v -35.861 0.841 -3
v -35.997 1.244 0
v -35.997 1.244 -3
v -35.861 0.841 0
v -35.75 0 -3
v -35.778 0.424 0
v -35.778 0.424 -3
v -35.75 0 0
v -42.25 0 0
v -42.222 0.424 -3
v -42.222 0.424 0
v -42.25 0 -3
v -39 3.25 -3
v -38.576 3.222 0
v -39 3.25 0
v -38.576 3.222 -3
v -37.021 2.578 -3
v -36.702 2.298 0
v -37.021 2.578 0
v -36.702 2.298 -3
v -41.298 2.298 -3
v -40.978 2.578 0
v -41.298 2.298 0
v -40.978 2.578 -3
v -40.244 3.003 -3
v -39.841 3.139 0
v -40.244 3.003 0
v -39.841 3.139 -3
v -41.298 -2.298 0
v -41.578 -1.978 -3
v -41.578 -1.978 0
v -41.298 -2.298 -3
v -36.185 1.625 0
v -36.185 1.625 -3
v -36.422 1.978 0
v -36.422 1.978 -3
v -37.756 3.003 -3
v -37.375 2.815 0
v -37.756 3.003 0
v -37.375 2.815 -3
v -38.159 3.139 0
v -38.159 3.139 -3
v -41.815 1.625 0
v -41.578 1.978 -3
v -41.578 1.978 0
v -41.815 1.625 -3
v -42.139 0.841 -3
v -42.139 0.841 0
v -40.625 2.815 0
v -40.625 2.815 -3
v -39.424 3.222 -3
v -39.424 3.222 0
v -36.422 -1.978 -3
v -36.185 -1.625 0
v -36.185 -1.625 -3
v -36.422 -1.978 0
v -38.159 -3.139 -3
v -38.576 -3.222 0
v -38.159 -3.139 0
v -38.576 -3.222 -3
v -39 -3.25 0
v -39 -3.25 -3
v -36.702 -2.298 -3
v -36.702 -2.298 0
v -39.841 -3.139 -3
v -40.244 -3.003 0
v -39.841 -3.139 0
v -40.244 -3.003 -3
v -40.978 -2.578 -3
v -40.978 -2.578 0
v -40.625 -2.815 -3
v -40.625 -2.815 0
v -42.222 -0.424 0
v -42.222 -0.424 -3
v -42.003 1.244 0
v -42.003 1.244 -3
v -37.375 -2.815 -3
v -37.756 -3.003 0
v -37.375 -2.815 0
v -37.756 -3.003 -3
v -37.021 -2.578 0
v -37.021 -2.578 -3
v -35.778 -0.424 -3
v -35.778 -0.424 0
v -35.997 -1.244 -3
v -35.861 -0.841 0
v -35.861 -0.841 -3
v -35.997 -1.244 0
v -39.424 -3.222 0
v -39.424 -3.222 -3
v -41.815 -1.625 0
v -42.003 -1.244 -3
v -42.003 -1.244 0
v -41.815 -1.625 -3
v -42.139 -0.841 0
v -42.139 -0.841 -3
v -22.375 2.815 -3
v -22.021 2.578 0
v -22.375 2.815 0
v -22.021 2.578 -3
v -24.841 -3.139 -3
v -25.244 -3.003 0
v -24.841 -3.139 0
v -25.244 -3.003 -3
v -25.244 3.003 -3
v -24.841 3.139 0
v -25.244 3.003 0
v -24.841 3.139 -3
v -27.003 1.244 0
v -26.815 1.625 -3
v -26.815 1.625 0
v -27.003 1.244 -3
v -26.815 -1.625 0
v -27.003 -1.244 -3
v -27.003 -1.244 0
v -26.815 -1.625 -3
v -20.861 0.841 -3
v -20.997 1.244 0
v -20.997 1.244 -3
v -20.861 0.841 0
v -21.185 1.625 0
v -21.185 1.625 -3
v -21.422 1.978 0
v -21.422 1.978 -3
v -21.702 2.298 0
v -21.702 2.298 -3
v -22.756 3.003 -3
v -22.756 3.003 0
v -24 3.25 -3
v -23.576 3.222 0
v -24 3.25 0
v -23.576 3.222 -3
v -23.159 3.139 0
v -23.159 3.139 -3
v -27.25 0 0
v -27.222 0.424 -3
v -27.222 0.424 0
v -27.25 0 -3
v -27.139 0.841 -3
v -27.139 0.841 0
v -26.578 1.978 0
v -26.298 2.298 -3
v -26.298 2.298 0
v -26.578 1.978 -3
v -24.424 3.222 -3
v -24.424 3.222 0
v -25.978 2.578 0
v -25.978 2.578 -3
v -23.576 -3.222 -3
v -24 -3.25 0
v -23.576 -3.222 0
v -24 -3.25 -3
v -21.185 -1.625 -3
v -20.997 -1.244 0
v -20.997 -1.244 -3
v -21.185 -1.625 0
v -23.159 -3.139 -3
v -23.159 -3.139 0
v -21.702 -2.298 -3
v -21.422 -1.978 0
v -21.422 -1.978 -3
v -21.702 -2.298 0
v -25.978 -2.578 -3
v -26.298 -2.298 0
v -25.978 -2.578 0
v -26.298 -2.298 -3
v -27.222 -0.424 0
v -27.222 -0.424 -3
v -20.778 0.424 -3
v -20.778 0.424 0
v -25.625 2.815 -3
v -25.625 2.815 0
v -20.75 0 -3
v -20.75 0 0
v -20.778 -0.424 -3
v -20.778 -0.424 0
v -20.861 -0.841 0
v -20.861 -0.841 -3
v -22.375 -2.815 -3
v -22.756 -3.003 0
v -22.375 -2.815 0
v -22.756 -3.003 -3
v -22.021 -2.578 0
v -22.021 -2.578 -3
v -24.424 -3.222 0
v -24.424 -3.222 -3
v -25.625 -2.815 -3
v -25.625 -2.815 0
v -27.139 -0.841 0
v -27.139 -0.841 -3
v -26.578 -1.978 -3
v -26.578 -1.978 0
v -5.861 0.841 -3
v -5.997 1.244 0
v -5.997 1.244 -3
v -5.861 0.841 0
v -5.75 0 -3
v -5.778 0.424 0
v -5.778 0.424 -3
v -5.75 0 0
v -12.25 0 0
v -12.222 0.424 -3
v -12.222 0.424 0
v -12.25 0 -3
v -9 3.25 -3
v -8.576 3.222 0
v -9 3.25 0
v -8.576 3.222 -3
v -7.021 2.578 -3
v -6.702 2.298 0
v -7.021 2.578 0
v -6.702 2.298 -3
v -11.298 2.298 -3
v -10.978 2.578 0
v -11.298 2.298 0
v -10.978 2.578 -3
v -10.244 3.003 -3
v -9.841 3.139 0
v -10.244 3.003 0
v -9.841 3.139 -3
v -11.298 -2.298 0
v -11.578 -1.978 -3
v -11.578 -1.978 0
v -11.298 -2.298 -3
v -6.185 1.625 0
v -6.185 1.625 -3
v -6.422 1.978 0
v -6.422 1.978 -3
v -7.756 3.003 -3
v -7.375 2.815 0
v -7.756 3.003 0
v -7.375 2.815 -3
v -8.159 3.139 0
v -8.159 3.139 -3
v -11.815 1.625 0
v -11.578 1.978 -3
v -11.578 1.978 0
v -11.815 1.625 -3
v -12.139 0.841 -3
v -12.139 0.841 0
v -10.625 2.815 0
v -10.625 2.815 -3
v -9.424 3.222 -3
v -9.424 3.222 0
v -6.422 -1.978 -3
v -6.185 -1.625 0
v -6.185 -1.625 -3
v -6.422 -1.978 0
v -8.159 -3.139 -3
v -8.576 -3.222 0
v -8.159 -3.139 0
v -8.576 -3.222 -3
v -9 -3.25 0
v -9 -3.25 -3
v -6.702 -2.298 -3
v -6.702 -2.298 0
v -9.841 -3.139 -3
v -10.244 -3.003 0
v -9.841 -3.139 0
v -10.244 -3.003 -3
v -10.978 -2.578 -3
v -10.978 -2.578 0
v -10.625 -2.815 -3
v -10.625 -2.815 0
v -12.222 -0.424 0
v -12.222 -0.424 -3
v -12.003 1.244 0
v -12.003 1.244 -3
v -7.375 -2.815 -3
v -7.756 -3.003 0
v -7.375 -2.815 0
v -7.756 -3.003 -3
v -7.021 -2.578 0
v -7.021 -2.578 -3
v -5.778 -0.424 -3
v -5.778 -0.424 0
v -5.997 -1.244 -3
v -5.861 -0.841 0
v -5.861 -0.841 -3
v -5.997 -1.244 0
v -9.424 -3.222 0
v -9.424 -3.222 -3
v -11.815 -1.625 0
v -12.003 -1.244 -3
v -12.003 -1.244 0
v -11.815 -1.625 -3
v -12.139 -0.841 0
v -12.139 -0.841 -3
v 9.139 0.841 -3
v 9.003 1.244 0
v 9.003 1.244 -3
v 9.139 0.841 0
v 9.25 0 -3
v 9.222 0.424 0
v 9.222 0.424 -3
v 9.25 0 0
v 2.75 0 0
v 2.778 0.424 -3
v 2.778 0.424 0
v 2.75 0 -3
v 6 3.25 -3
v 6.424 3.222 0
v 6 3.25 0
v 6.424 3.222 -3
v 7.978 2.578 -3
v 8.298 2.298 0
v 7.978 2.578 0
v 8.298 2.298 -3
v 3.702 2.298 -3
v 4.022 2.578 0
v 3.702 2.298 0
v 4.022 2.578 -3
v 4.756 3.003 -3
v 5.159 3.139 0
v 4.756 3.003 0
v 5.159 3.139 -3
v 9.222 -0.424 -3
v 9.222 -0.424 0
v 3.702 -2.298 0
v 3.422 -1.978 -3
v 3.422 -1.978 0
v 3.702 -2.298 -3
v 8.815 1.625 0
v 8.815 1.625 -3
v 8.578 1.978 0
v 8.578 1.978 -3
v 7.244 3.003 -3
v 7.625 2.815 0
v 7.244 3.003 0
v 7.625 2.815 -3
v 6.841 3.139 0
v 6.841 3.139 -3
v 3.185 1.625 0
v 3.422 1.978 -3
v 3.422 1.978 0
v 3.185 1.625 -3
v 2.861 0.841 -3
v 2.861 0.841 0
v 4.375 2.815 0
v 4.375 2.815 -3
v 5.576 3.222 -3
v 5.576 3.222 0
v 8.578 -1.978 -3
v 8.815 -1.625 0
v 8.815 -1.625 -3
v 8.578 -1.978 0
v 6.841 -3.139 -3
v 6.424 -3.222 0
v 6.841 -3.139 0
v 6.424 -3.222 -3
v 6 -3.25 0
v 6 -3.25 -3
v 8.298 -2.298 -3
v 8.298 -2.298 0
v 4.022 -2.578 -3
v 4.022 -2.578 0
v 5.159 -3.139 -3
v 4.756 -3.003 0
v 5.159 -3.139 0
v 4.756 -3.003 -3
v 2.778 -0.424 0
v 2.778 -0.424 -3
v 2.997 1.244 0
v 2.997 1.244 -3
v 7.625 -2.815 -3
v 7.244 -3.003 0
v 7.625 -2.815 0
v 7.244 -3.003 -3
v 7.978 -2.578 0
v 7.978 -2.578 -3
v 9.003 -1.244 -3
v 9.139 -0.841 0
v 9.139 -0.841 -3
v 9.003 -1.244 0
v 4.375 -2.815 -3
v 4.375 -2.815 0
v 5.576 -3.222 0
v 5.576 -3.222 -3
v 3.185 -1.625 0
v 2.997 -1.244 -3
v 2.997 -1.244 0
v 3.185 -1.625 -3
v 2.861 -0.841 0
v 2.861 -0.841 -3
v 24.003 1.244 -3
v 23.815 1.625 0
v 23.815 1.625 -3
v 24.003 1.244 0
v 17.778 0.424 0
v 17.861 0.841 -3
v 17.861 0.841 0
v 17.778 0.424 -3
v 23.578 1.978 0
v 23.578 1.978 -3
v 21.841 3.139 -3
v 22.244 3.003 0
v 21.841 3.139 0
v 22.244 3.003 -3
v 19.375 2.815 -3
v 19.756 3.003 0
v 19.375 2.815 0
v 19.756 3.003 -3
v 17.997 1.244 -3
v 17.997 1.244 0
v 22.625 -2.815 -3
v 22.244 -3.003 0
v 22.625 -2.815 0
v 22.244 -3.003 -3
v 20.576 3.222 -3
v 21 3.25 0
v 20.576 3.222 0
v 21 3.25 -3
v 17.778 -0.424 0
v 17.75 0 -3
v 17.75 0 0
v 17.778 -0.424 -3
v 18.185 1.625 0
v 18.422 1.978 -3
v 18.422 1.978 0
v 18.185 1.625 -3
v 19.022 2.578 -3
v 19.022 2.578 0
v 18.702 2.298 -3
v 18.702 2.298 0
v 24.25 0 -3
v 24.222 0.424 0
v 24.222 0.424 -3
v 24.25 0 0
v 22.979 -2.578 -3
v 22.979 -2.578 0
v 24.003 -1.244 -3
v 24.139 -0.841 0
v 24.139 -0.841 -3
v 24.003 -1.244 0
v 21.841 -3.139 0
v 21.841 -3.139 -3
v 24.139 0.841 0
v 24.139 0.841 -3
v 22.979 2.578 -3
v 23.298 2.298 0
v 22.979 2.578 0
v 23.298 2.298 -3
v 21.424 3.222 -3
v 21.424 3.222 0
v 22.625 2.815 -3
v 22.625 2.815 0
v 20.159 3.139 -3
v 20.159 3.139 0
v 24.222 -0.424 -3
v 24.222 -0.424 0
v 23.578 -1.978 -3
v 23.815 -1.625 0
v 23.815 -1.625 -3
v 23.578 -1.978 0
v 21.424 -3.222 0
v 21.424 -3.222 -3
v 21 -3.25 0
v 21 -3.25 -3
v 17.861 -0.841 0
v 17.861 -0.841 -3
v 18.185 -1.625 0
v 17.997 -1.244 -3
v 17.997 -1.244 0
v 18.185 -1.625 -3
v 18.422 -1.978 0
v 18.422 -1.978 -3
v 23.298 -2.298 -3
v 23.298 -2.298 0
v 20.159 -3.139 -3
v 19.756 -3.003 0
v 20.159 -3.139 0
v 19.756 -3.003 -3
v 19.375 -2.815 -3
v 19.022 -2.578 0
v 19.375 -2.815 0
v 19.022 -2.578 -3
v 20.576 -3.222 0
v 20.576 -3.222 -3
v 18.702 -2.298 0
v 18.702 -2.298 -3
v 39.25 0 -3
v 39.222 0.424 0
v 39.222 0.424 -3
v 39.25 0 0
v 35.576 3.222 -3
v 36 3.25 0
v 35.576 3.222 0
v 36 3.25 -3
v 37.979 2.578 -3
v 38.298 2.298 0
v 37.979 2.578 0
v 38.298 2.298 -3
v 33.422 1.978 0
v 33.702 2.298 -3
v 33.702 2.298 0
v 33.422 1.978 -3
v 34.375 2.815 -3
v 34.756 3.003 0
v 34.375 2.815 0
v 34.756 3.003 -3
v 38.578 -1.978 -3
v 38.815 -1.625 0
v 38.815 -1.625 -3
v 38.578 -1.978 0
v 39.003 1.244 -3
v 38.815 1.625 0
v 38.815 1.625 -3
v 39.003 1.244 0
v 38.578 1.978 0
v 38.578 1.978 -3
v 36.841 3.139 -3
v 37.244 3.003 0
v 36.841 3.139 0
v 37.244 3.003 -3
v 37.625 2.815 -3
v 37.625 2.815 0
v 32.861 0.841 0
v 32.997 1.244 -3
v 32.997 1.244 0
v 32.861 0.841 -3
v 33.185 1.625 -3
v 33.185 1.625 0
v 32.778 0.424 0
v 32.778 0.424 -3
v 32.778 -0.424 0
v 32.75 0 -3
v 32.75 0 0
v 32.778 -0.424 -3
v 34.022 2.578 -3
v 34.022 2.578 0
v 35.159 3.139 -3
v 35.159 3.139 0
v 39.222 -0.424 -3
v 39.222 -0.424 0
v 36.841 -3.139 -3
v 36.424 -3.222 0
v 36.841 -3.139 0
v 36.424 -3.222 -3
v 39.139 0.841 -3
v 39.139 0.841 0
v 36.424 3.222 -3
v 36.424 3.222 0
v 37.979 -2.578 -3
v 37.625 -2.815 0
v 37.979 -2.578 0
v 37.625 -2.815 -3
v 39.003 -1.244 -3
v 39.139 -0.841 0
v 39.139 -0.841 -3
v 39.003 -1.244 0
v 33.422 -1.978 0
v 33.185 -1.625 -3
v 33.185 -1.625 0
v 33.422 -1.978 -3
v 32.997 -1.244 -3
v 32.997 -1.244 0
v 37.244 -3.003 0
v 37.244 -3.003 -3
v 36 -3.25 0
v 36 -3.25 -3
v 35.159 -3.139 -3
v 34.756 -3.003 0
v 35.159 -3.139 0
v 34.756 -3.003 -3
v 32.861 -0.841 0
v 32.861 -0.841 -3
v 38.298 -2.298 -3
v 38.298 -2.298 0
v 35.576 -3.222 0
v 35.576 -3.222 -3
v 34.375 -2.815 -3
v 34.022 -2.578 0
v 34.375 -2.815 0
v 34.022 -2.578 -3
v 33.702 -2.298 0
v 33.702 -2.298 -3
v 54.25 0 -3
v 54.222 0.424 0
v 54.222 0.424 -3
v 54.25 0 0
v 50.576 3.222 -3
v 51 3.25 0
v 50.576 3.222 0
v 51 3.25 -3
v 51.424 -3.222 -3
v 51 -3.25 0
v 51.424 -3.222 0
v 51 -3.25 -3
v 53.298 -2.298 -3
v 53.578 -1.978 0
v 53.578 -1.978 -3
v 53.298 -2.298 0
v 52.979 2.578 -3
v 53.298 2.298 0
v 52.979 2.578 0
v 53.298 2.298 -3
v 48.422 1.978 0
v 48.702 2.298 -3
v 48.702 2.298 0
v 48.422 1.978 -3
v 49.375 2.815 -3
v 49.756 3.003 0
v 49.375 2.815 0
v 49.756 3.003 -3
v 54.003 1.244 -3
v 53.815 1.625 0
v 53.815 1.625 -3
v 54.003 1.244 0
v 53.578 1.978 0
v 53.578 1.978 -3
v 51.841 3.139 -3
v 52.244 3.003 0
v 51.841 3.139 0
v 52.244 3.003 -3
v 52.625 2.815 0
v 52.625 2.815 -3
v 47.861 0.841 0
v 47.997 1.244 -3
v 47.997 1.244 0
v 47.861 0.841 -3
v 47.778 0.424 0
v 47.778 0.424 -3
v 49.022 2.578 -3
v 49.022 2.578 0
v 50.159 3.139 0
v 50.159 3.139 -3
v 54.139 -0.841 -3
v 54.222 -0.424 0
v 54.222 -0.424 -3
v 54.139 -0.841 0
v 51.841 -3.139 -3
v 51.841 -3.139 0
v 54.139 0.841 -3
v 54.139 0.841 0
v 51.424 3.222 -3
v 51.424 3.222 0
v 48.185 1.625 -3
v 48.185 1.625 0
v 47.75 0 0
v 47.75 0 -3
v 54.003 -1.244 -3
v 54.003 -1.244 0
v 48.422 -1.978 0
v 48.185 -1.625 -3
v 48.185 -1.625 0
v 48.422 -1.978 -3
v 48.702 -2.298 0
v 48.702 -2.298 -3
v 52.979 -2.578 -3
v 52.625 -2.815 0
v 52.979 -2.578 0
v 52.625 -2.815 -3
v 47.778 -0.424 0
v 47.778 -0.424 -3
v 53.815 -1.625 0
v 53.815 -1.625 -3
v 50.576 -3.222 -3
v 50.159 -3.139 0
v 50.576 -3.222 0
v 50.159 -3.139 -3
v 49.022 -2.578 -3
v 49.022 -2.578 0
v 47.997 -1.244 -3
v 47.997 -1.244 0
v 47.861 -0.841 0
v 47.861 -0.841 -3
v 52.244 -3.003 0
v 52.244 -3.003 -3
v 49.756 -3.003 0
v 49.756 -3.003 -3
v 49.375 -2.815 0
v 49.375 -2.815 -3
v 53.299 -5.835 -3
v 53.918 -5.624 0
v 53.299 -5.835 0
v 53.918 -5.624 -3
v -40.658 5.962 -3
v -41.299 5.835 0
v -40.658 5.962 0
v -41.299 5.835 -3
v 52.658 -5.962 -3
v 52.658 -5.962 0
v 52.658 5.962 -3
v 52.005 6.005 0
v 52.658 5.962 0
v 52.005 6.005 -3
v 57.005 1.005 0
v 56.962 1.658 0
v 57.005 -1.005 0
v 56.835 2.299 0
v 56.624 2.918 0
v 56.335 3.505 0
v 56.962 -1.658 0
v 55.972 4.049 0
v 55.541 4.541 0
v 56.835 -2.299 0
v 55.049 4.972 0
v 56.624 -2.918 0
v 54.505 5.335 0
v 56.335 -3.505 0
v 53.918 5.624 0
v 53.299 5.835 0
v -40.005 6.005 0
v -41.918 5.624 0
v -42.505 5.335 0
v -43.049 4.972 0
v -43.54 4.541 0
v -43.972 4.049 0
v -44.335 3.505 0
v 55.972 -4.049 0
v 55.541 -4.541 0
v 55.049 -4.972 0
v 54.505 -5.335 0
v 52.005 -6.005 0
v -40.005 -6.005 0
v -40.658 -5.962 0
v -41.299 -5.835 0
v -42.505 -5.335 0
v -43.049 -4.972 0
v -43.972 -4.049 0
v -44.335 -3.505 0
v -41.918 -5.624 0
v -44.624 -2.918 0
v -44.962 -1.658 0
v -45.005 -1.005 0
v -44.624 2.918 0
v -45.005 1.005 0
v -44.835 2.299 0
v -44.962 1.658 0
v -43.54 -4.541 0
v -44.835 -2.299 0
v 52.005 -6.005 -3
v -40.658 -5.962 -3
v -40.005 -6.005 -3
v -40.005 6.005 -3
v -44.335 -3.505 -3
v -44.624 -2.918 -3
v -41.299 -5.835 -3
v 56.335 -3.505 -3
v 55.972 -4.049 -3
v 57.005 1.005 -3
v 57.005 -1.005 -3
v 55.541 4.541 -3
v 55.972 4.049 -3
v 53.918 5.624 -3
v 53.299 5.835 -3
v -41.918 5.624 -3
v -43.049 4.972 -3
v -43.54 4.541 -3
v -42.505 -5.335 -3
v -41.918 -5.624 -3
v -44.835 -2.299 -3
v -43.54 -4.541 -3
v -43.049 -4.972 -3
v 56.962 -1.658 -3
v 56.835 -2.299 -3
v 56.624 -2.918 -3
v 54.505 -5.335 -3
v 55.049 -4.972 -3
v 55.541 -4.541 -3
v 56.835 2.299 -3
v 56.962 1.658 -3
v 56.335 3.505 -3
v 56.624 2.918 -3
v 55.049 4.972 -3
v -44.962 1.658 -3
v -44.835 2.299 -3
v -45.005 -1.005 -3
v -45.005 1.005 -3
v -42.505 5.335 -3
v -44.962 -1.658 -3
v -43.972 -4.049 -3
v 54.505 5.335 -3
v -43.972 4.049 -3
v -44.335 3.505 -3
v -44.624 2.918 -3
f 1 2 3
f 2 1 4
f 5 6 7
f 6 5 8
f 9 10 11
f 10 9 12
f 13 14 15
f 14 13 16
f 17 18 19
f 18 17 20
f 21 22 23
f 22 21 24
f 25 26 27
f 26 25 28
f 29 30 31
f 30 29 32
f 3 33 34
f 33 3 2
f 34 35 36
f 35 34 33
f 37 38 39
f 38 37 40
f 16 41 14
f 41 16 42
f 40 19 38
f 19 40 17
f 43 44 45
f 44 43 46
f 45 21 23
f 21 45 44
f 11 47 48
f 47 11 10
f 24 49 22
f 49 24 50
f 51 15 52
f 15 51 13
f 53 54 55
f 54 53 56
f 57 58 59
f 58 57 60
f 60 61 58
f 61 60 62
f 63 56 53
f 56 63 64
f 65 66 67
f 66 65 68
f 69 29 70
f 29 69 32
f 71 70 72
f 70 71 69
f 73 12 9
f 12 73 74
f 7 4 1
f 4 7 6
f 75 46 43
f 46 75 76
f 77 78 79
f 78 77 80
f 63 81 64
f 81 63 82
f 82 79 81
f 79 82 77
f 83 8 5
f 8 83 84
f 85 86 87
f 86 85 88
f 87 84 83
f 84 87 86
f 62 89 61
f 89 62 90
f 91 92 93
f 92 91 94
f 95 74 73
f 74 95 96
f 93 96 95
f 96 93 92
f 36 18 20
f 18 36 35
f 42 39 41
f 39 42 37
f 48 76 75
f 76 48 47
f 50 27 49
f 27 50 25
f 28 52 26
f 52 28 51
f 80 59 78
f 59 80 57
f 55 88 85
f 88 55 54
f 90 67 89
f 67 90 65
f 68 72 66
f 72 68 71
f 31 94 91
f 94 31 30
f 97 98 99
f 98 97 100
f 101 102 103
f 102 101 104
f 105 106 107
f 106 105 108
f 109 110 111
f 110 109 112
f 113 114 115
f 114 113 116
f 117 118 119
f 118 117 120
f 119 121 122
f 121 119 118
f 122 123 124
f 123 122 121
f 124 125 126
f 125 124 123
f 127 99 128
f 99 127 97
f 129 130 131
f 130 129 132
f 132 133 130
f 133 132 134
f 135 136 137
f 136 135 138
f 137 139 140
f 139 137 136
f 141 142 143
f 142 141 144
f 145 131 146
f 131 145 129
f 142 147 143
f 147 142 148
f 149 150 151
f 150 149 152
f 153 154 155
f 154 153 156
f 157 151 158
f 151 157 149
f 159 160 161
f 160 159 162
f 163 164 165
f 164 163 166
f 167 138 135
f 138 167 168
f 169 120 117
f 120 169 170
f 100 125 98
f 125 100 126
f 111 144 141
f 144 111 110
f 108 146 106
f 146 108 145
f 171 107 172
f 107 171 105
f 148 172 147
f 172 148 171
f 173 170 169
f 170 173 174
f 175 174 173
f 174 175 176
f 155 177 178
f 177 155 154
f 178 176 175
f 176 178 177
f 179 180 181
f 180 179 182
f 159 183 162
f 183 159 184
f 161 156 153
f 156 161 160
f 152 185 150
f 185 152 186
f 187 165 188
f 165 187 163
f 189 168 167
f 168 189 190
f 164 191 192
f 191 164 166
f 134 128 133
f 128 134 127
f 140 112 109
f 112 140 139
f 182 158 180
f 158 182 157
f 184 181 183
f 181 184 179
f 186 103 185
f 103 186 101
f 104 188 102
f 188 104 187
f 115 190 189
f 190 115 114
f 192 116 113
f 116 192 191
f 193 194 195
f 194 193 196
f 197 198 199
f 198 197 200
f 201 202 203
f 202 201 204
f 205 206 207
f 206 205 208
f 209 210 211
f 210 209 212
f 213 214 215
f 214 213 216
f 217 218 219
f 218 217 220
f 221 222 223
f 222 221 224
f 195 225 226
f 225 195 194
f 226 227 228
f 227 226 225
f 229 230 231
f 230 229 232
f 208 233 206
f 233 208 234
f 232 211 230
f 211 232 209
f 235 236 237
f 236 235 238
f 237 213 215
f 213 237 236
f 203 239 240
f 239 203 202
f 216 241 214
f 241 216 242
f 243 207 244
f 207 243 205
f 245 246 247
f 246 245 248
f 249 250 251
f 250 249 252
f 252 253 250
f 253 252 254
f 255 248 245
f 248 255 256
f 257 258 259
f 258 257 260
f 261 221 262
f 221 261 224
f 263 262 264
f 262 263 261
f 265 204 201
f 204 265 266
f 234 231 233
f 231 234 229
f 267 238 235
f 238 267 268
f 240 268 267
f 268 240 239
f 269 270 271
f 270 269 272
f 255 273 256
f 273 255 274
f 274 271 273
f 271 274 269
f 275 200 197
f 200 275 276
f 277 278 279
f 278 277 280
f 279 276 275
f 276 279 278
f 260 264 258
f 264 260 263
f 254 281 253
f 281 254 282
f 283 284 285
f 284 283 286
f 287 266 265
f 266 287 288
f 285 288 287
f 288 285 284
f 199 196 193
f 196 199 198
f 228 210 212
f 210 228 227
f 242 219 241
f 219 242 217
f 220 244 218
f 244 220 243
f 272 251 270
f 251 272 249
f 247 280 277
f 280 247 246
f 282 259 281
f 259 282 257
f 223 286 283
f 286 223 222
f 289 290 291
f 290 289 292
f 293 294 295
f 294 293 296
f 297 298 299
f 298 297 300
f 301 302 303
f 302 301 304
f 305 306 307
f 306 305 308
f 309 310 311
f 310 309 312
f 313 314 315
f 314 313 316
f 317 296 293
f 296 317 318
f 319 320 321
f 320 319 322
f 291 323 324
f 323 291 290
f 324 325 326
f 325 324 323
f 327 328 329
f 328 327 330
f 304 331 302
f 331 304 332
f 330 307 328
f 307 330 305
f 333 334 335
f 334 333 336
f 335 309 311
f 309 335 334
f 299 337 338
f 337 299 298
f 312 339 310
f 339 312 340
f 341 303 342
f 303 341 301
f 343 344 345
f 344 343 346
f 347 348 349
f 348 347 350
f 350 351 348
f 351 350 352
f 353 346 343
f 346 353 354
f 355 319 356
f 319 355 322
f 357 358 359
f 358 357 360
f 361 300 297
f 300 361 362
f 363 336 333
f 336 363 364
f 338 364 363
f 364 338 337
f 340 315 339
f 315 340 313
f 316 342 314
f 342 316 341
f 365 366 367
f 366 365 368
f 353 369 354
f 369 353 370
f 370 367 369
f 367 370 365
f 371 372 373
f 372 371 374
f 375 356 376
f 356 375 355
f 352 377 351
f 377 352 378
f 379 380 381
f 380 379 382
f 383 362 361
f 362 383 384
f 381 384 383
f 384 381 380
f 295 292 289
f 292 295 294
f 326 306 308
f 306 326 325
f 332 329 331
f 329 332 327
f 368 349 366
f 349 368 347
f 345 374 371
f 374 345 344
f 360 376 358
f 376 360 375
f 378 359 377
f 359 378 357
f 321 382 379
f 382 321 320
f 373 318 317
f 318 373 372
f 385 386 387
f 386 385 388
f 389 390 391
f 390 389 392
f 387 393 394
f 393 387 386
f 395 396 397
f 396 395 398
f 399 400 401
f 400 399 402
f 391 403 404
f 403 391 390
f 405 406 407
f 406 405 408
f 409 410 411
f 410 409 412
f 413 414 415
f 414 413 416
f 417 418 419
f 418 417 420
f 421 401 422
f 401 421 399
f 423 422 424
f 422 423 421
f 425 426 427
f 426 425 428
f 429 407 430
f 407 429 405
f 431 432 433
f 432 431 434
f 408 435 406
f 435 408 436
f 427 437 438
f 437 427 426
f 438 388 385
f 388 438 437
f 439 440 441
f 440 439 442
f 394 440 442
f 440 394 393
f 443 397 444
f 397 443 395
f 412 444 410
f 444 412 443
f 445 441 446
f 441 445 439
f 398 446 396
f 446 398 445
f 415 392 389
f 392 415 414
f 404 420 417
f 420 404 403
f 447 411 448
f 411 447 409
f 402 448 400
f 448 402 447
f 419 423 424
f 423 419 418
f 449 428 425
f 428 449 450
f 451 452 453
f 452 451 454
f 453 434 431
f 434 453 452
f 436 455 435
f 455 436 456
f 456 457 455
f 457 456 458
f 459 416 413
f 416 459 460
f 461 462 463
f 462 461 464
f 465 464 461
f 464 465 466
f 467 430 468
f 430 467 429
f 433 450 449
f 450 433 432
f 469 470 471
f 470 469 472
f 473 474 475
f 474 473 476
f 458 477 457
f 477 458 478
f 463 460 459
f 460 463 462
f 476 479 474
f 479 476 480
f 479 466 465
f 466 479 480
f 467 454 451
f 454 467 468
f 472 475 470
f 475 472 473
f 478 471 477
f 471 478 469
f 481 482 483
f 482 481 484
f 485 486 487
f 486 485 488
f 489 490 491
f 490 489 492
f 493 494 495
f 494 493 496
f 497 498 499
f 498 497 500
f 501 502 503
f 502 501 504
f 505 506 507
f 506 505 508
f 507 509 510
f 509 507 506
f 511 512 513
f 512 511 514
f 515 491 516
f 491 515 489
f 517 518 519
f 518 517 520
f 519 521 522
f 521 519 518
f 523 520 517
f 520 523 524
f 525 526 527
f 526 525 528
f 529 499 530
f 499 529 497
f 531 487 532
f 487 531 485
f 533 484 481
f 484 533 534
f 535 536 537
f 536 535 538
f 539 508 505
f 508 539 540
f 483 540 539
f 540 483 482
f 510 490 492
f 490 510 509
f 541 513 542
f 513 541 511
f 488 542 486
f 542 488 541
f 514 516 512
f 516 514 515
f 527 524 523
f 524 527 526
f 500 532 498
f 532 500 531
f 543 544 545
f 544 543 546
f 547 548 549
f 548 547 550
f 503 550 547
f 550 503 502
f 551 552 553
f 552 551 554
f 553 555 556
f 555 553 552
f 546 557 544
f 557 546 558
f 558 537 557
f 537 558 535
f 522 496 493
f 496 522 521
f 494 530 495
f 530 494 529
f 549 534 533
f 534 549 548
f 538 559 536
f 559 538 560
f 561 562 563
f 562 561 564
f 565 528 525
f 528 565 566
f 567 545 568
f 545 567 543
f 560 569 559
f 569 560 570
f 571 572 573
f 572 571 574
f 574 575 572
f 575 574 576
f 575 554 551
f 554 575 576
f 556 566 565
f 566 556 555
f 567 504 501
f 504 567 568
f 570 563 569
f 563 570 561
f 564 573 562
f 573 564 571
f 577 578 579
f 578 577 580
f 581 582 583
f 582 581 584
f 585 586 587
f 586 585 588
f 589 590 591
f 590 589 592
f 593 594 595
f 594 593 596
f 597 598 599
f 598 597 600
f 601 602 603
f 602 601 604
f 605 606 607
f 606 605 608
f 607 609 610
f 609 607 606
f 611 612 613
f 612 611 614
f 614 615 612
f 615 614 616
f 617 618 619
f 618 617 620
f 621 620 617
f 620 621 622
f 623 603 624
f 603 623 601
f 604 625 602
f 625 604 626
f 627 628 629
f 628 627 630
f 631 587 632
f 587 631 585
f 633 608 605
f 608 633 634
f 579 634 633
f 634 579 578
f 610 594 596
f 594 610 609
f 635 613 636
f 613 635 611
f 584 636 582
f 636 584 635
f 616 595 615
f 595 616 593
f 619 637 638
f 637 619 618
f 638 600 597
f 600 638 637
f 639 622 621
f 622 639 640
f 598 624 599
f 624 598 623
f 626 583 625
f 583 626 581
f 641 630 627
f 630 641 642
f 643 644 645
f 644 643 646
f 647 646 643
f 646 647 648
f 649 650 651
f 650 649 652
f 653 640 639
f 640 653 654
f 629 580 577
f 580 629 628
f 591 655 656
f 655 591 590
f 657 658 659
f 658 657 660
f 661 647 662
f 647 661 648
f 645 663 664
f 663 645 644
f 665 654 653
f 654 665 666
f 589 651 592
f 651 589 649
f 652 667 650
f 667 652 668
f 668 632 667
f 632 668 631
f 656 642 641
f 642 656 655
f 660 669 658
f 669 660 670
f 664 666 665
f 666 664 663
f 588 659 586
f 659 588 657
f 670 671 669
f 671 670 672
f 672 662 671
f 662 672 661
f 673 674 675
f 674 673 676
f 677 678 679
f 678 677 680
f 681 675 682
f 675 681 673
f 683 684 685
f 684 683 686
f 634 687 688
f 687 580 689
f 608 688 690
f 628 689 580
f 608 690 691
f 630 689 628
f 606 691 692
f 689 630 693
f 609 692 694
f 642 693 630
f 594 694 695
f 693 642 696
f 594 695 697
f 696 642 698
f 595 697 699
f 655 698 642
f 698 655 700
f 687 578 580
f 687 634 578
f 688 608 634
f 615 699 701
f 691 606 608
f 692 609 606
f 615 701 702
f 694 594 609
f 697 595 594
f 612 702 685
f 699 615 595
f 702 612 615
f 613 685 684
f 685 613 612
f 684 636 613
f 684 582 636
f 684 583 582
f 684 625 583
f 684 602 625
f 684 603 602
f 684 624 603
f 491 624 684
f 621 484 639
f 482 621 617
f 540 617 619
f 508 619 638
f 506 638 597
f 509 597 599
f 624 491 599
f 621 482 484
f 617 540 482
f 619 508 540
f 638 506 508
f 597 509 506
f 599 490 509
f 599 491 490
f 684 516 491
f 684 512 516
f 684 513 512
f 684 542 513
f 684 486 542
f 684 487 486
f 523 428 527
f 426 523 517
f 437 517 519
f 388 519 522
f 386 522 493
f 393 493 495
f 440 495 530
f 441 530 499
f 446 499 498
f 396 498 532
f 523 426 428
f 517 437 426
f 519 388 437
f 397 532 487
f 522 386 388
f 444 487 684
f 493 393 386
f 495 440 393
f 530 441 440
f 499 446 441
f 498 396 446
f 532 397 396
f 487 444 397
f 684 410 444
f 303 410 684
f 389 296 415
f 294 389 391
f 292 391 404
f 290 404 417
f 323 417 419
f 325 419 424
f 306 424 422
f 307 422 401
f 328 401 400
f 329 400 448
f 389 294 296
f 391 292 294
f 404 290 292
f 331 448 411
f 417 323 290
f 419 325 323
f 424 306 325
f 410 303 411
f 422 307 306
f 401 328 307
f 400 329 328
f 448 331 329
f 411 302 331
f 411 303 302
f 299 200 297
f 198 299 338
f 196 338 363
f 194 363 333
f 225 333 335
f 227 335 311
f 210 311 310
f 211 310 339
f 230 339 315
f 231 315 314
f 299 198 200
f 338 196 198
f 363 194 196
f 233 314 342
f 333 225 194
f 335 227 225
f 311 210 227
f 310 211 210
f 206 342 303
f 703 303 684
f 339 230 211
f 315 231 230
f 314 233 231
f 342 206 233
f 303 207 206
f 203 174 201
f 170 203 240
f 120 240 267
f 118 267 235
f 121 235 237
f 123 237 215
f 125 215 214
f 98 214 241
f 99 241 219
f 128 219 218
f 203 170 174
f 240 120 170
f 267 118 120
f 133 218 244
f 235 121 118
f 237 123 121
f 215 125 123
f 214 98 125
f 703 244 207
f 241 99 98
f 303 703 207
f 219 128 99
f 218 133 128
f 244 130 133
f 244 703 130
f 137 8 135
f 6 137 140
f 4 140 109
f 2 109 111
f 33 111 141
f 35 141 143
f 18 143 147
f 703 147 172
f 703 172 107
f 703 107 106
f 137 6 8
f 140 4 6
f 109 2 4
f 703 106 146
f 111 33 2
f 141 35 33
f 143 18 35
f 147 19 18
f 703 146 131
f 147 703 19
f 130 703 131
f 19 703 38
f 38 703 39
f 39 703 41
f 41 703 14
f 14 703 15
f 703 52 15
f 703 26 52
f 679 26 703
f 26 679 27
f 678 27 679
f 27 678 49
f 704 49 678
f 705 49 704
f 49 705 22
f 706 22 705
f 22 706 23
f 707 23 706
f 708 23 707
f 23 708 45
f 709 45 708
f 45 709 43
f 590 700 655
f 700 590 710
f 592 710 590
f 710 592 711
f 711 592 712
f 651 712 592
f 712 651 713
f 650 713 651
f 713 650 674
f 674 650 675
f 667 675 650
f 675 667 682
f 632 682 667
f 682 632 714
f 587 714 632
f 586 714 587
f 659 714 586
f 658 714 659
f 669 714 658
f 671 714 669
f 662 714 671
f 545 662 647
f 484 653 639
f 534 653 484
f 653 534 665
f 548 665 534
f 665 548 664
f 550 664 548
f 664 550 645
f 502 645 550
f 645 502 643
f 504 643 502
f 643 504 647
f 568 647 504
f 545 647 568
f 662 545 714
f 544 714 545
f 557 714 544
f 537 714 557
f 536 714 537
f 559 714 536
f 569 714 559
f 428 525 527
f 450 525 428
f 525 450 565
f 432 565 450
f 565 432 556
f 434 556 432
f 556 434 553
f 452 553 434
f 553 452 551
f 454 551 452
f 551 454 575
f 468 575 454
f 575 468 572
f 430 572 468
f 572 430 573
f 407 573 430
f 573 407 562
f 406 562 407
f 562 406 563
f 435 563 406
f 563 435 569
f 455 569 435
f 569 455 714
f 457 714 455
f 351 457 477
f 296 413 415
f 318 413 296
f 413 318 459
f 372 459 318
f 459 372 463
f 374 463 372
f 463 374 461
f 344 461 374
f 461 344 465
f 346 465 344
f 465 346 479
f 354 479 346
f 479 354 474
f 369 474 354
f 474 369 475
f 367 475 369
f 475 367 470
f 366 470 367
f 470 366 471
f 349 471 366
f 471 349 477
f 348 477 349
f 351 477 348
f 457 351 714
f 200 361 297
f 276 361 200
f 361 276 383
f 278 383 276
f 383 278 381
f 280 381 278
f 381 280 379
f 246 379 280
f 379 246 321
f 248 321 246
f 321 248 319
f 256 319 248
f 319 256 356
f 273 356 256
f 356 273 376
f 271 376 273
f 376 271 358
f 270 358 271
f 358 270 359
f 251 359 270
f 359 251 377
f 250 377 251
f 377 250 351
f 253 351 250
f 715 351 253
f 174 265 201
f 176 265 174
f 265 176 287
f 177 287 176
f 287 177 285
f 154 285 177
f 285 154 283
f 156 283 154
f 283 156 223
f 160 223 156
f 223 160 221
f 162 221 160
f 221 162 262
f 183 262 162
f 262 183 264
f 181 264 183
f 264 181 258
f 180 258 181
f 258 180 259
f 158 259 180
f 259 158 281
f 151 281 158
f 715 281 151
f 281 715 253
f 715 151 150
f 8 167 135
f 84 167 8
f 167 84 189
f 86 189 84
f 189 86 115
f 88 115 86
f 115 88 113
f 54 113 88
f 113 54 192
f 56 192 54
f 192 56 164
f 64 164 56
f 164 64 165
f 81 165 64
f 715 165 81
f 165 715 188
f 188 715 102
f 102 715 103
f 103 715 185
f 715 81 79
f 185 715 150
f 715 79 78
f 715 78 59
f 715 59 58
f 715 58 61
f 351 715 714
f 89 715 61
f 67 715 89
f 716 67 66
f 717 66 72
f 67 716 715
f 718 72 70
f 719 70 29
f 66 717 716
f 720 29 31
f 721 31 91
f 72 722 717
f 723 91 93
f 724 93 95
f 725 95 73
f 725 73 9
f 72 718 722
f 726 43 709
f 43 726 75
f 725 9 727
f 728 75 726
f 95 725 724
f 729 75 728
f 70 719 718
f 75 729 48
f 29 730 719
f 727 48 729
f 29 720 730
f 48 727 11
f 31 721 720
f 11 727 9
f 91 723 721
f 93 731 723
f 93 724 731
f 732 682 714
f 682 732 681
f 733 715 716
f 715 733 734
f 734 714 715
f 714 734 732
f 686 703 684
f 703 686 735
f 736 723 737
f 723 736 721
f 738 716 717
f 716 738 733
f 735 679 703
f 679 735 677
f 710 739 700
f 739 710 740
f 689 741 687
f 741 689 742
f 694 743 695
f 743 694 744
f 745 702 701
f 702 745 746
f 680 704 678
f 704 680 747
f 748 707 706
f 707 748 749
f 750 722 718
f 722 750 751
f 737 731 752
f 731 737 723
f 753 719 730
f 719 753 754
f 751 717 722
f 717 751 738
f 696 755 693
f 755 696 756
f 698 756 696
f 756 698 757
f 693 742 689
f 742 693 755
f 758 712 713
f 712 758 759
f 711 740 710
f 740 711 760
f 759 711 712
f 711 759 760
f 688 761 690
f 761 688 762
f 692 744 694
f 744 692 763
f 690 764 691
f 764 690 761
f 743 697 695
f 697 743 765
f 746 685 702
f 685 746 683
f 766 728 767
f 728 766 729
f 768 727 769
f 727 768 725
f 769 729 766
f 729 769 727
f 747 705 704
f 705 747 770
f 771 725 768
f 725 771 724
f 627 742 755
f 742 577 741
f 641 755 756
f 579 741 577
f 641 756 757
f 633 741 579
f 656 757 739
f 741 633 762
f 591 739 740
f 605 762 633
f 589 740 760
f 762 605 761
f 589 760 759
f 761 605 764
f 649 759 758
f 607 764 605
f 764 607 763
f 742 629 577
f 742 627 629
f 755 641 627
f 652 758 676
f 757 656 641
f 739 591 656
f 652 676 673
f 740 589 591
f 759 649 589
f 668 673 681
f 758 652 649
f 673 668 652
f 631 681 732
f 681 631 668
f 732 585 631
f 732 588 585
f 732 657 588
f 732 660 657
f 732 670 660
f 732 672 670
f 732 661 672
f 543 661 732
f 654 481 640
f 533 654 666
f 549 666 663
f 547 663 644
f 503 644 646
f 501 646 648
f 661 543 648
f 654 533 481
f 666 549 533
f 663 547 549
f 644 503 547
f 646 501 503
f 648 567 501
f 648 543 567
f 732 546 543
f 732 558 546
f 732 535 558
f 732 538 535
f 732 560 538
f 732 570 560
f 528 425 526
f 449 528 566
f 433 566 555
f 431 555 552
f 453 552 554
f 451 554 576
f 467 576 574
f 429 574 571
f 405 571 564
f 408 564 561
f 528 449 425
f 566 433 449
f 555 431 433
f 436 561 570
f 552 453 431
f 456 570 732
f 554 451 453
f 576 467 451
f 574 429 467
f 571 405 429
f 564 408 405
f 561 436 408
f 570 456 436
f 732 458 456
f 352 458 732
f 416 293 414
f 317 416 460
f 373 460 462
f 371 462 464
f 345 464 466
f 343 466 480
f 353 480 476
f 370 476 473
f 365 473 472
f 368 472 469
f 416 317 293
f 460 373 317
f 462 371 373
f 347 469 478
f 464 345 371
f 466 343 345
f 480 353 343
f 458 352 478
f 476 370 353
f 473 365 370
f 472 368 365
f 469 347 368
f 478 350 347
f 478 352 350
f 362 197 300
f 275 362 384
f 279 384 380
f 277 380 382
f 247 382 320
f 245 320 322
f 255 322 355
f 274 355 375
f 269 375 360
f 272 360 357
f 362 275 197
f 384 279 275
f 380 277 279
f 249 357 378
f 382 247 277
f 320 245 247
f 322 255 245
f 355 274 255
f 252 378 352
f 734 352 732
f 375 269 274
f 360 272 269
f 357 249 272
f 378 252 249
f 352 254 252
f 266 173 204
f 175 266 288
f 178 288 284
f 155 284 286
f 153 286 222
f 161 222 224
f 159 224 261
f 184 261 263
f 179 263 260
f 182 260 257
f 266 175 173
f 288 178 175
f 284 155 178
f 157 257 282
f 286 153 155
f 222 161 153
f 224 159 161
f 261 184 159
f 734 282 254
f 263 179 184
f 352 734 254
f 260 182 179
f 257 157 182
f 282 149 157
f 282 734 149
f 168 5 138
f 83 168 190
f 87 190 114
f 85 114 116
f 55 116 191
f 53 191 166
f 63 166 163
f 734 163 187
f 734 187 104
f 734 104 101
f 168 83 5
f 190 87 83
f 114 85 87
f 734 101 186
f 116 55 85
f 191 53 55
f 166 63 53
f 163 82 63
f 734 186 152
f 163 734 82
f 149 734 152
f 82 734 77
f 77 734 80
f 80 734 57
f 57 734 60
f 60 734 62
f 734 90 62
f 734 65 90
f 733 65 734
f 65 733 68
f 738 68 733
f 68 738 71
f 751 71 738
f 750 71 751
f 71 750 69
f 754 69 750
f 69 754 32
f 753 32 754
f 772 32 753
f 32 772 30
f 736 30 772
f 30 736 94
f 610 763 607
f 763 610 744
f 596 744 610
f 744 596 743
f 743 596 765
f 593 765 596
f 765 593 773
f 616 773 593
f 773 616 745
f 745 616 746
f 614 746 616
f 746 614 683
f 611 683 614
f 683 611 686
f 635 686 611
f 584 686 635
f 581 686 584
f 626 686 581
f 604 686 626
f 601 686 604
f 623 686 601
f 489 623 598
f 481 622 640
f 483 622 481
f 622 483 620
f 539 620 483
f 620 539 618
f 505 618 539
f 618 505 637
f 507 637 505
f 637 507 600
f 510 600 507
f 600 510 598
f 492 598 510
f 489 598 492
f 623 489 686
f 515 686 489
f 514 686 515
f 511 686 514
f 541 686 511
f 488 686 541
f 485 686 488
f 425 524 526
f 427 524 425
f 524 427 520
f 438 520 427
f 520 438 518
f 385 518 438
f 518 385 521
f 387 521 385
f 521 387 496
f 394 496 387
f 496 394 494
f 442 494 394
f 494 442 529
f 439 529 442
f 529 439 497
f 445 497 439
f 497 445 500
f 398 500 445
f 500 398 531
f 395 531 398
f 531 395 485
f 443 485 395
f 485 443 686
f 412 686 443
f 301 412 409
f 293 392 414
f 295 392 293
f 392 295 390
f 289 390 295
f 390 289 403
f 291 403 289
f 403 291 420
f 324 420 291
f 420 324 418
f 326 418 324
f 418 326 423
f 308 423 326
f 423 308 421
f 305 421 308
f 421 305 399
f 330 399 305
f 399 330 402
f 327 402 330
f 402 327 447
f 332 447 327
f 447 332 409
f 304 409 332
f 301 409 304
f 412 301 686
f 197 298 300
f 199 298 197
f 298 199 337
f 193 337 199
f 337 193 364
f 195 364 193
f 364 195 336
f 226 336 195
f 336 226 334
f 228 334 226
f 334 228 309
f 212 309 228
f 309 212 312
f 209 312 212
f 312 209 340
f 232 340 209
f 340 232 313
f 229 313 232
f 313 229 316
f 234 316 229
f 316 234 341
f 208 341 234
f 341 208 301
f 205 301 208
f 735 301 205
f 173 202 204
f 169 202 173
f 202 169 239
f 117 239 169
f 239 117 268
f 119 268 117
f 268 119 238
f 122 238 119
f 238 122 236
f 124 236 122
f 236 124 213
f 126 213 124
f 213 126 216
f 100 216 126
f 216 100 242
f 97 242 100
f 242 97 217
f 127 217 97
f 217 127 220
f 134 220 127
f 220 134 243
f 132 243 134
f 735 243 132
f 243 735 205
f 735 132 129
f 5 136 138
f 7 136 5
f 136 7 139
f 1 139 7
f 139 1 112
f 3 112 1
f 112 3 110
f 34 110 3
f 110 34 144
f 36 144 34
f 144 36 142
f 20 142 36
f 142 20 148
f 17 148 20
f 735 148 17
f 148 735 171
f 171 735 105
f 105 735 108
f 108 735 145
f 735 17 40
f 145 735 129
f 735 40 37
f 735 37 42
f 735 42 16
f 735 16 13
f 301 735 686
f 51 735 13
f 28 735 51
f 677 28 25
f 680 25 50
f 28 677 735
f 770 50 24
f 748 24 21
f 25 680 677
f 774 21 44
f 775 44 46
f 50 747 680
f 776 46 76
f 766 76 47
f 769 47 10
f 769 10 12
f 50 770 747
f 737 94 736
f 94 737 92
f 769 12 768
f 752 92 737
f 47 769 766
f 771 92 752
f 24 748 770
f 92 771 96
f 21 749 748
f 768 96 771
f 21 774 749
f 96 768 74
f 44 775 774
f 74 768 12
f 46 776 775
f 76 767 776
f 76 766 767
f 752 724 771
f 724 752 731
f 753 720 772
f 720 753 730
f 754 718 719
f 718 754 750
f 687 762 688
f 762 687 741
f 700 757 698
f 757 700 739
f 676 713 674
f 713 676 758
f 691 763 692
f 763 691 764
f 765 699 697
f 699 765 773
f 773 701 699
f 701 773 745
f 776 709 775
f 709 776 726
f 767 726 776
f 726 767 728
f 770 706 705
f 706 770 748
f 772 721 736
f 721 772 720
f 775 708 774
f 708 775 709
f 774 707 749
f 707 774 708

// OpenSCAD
// Generated by SolidPython 1.1.3 on 2022-09-15 16:37:11
$fn = 48;


difference() {
	union() {
		translate(v = [6, 0, 0]) {
			difference() {
				union() {
					color(alpha = 1.0000000000, c = "Gold") {
						translate(v = [0, 0, 0]) {
							rotate(a = [0, 0, 0]) {
								translate(v = [0, 0, -3]) {
									linear_extrude(height = 3) {
										offset(r = 5) {
											square(center = true, size = [92.0100000000, 2.0100000000]);
										}
									}
								}
							}
						}
					}
				}
				union() {
					color(alpha = 1.0000000000, c = "Gold") {
						translate(v = [-45.0000000000, 0.0000000000, 0]) {
							rotate(a = [0, 0, 0]) {
								translate(v = [0, 0, -250]) {
									cylinder(h = 500, r = 3.2500000000);
								}
							}
						}
					}
					color(alpha = 1.0000000000, c = "Gold") {
						translate(v = [-30.0000000000, 0.0000000000, 0]) {
							rotate(a = [0, 0, 0]) {
								translate(v = [0, 0, -250]) {
									cylinder(h = 500, r = 3.2500000000);
								}
							}
						}
					}
					color(alpha = 1.0000000000, c = "Gold") {
						translate(v = [-15.0000000000, 0.0000000000, 0]) {
							rotate(a = [0, 0, 0]) {
								translate(v = [0, 0, -250]) {
									cylinder(h = 500, r = 3.2500000000);
								}
							}
						}
					}
					color(alpha = 1.0000000000, c = "Gold") {
						translate(v = [0.0000000000, 0.0000000000, 0]) {
							rotate(a = [0, 0, 0]) {
								translate(v = [0, 0, -250]) {
									cylinder(h = 500, r = 3.2500000000);
								}
							}
						}
					}
					color(alpha = 1.0000000000, c = "Gold") {
						translate(v = [15.0000000000, 0.0000000000, 0]) {
							rotate(a = [0, 0, 0]) {
								translate(v = [0, 0, -250]) {
									cylinder(h = 500, r = 3.2500000000);
								}
							}
						}
					}
					color(alpha = 1.0000000000, c = "Gold") {
						translate(v = [30.0000000000, 0.0000000000, 0]) {
							rotate(a = [0, 0, 0]) {
								translate(v = [0, 0, -250]) {
									cylinder(h = 500, r = 3.2500000000);
								}
							}
						}
					}
					color(alpha = 1.0000000000, c = "Gold") {
						translate(v = [45.0000000000, 0.0000000000, 0]) {
							rotate(a = [0, 0, 0]) {
								translate(v = [0, 0, -250]) {
									cylinder(h = 500, r = 3.2500000000);
								}
							}
						}
					}
				}
			}
		}
	}
	union();
}
/***********************************************
*********      SolidPython code:      **********
************************************************
 
import subprocess

from solid.objects import *
from solid import scad_render_to_file, scad_render

import math

import os

##################################################################################################################################################
##################################################################################################################################################
##################################################################################################################################################
##################################################################################################################################################
######  DIMENSION STUFF
##################################################################################################################################################
##################################################################################################################################################
##################################################################################################################################################
##################################################################################################################################################


mode = "3DPR"
#mode = "LAZE"
#mode = "TURE"
#mode = ""


######  Countersunk
countersunkM = []
WIDTH = 0
DEPTH = 1
countersunkM1width = 0; countersunkM1depth = 0; countersunkM2width = 0; countersunkM2depth = 0
countersunkM3width = 0
countersunkM3depth = 0
countersunkM4width = 0
countersunkM4depth = 0
countersunkM5width = 0
countersunkM5depth = 0
countersunkM6width = 0
countersunkM6depth = 0

######  Holes
holeM = []
holeM1 = 0
holeM2 = 0
holeM3 = 0
holeM4 = 0
holeM5 = 0
holeM6 = 0

######  Nuts
nutM = []
NUTWIDTH = 0
NUTDEPTH = 1
nutM1width = 0
nutM1depth = 0
nutM2width = 0
nutM2depth = 0
nutM3width = 0
nutM3depth = 0
nutM4width = 0
nutM4depth = 0
nutM5width = 0
nutM5depth = 0
nutM6width = 0
nutM6depth = 0

######  OOEB
ooebPinWidth = 0
ooebPinWidthWide = 0


######  Colors
colDefault = "Gold"

colOOEBbase = colDefault

colLEDRed = "red"
colWire = "gray"
    ######  Resistor
colRes = list()
colResistor = "beige"

colResBlack = "black"
colRes.append(colResBlack)
colResBrown = "brown"
colRes.append(colResBrown)
colResRed = "red"
colRes.append(colResRed)
colResOrange = "orange"
colRes.append(colResOrange)
colResYellow = "yellow"
colRes.append(colResYellow)
colResGreen = "green"
colRes.append(colResGreen)
colResBlue = "blue"
colRes.append(colResBlue)
colResPurple = "purple"
colRes.append(colResPurple)
colResGray = "gray"
colRes.append(colResGray)
colResWhite = "white"
colRes.append(colResWhite)





def changeMode(m="3DPR"):
    #print("####################################################      CHANGING MODES TO: " + m)
    global mode
    mode = m
    ######  Countersunk
    global countersunkM, countersunkM1width, countersunkM1depth, countersunkM2width, countersunkM2depth, countersunkM3width, countersunkM3depth, countersunkM4width, countersunkM4depth, countersunkM5width, countersunkM5depth, countersunkM6width, countersunkM6depth
    countersunkM = []
    countersunkM.append([0,0])
    countersunkM1width = 0 if mode== "3DPR" else 0
    countersunkM1depth = 0 if mode== "3DPR" else 0
    countersunkM.append([countersunkM1width,countersunkM1depth])
    countersunkM2width = 0 if mode== "3DPR" else 0
    countersunkM2depth = 0 if mode== "3DPR" else 0
    countersunkM.append([countersunkM2width,countersunkM2depth])
    countersunkM3width = 5.5/2+0.6 if mode== "3DPR" else 5.5/2
    countersunkM3depth = 1.7 if mode== "3DPR" else 1.7
    countersunkM.append([countersunkM3width,countersunkM3depth])
    countersunkM4width = 0 if mode== "3DPR" else 0
    countersunkM4depth = 0 if mode== "3DPR" else 0
    countersunkM.append([countersunkM4width,countersunkM4depth])
    countersunkM5width = 0 if mode== "3DPR" else 0
    countersunkM5depth = 0 if mode== "3DPR" else 0
    countersunkM.append([countersunkM5width,countersunkM5depth])
    countersunkM6width = 0 if mode== "3DPR" else 0
    countersunkM6depth = 0 if mode== "3DPR" else 0
    countersunkM.append([countersunkM6width,countersunkM6depth])
    ######  Holes
    global holeM, holeM1, holeM2, holeM3, holeM4, holeM5, holeM6, holeM7, holeM8
    holeM = []
    holeM1 = 1.2/2 if mode== "3DPR" else 1/2
    holeM2 = 2.3/2 if mode== "3DPR" else 2/2
    holeM3 = 3.4/2 if mode== "3DPR" else 3/2
    holeM4 = 4.4/2 if mode== "3DPR" else 4/2
    holeM5 = 5.4/2 if mode== "3DPR" else 5/2
    holeM6 = 6.5/2 if mode== "3DPR" else 6/2
    holeM7 = 7.5/2 if mode== "3DPR" else 7/2
    holeM8 = 8.6/2 if mode== "3DPR" else 8/2
    holeM.append(0)
    holeM.append(holeM1)
    holeM.append(holeM2)
    holeM.append(holeM3)
    holeM.append(holeM4)
    holeM.append(holeM5)
    holeM.append(holeM6)
    holeM.append(holeM7)
    holeM.append(holeM8)
    #####  Nuts
    global nutM, nutM1width, nutM1depth, nutM2width, nutM2depth, nutM3width, nutM3depth, nutM4width, nutM4depth, nutM5width, nutM5depth, nutM6width, nutM6depth
    nutM = []
    nutM.append([0,0]) 
    #M1 Nut
    nutM1width = 0
    nutM1depth = 0
    nutM.append([nutM1width,nutM1depth])    
    #M2 Nut
    nutM2width = 0
    nutM2depth = 0
    nutM.append([nutM2width,nutM2depth])    
    #M3 Nut
    #nutM3width = 6.05 if mode== "3DPR" else 5.5
    nutM3width = 6.05 * 1.154 if mode== "3DPR" else 5.5 * 1.154
    nutM3depth = 2.5 if mode== "3DPR" else 2.5
    nutM.append([nutM3width,nutM3depth])    
    #M4 Nut
    nutM4width = 0
    nutM4depth = 0
    nutM.append([nutM4width,nutM4depth])    
    #M5 Nut
    nutM5width = 0
    nutM5depth = 0
    nutM.append([nutM5width,nutM5depth])    
    #M6 Nut
    nutM6width = 11 if mode== "3DPR" else 10
    nutM6depth = 5 if mode== "3DPR" else 5
    nutM.append([nutM6width,nutM6depth])    

    ######  OOEB
    global ooebPinWidth,  ooebPinWidthWide

    ooebPinWidth = 0.6
    if(mode=="3DPR" or mode=="LAZE"):
        ooebPinWidth = 0.6 + 0.6
    ooebPinWidthWide = 1.2
    if(mode=="3DPR" or mode=="LAZE"):
        ooebPinWidthWide = 1.2 + 0.6


changeMode()


""""    
holeM12D = s=="3DPR" ? 1.4/2 : 1.2/2;
holeM16D = s=="3DPR" ? 1.8/2 : 1.6/2;
holeM2 = s=="3DPR" ? 2.3/2 : 2/2;
holeM25D = s=="3DPR" ? 2.8/2 : 2.5/2;
holeM27D = s=="3DPR" ? 3.1/2 : 2.7/2;    
holeM3 = s=="3DPR" ? 3.4/2 : 3/2;
holeM35D = s=="3DPR" ? 3.9/2 : 35/2;
holeM4 = s=="3DPR" ? 4.4/2 : 4/2;
holeM5 = s=="3DPR" ? 5.4/2 : 5/2;
holeM6 = s=="3DPR" ? 6.5/2 : 6/2;
holeM6Minus = s=="3DPR" ? 5.8/2 : 5.9/2;
holeM7 = s=="3DPR" ? 7.5/2 : 7/2;
holeM8 = s=="3DPR" ? 8.6/2 : 8/2;
holeM9 = s=="3DPR" ? 9.6/2 : 9/2;
holeM10 = s=="3DPR" ? 10.6/2 : 10/2;
holeM11 = s=="3DPR" ? 11.6/2 : 11/2;
holeM12 = s=="3DPR" ? 12.6/2 : 12/2;
holeM13 = s=="3DPR" ? 13.6/2 : 13/2;
holeM14 = s=="3DPR" ? 14.6/2 : 14/2;
holeM15 = s=="3DPR" ? 15.6/2 : 15/2;
holeM16 = s=="3DPR" ? 16.6/2 : 16/2;
holeM17 = s=="3DPR" ? 17.6/2 : 17/2;
holeM18 = s=="3DPR" ? 18.6/2 : 18/2;
holeM19 = s=="3DPR" ? 19.6/2 : 19/2;
holeM20 = s=="3DPR" ? 20.6/2 : 20/2;
"""

##################################################################################################################################################
##################################################################################################################################################
##################################################################################################################################################
##################################################################################################################################################
######  REGULAR STUFF
##################################################################################################################################################
##################################################################################################################################################
##################################################################################################################################################
##################################################################################################################################################


def setMode(mode="3DPR"):
    changeMode(mode)

def getMode():
    return mode



def saveToScad(fileName, parts):
    dir =  os.path.dirname(os.path.abspath(fileName))
    Path(dir).mkdir(parents=True, exist_ok=True)
    file_out = scad_render_to_file(parts, fileName, file_header=f'$fn = 48;')


def saveToDxf(fileIn, fileOut=""):
    if fileOut == "":
        fileOut = fileIn.replace(".scad",".dxf")
    saveToFile(fileIn, fileOut)
    
def saveToPng(fileIn, fileOut="",extra="--render"):
    if fileOut == "":
        fileOut = fileIn.replace(".scad",".png")
    saveToFile(fileIn, fileOut)

def saveToStl(fileIn, fileOut=""):
    if fileOut == "":
        fileOut = fileIn.replace(".scad",".stl")
    saveToFile(fileIn, fileOut)
    
def saveToSvg(fileIn, fileOut=""):
    if fileOut == "":
        fileOut = fileIn.replace(".scad",".svg")
    saveToFile(fileIn, fileOut)

def saveToFile(fileIn, fileOut,extra=""):
    extra = extra + " --colorscheme Tomorrow"

    launchStr = 'openscad -o "' + fileOut + '"' + extra + ' "' + fileIn + '"'
    if ".png" in fileOut:
        launchStr = launchStr + " --render"
    print("            saveToFile launch string: " + launchStr)
    subprocess.run(launchStr)
    x=0



def insert(item,pos=[None,None,None],x=0,y=0,z=0,ex=0,size=[None,None,None],length=0,rot=[None,None,None],rotX=0,rotY=0,rotZ=0,width=0,height=0,depth=100,rad=0,rad2=0,color=colDefault,alpha=1,OOwidth=0,OOheight=0,holes=True,negative=True, name="",m=""):
    return OPSCInsert(item,pos,x,y,z,ex,size,length,rot,rotX,rotY,rotZ,width,height,depth,rad,rad2,color,alpha,OOwidth,OOheight,holes,negative,name,m=m)


def OPSCInsert(item,pos=[None,None,None],x=0,y=0,z=0,ex=0,size=[None,None,None],length=0,rot=[None,None,None],rotX=0,rotY=0,rotZ=0,width=0,height=0,depth=100,rad=0,rad2=0,col=colDefault,alpha=1,OOwidth=0,OOheight=0,holes=True,negative=True, name="",m=""):
    
    """
        color(color,alpha){
            translate([x,y,z]){
                    rotate([rotX,rotY,rotZ]){
    """
    returnValue = ""

    #print(pos)

    if pos[0] != None:
        x=pos[0]
        y=pos[1]
        z=pos[2]
    if rot[0] != None:
        rotX=rot[0]
        rotY=rot[1]
        rotZ=rot[2]
    
    returnValue = color(col)(translate((x,y,z))(
                            rotate((rotX,rotY,rotZ))(
                                OPSCInsertIf(item,pos,x,y,z,ex,size,length,rot,rotX,rotY,rotZ,width,height,depth,rad,rad2,col,alpha,OOwidth,OOheight,holes,negative,name,m=m)
                            )
                        ))
                
    

    return returnValue

def OPSCInsertIf(item,pos=[None,None,None],x=0,y=0,z=0,ex=0,size=[None,None,None],length=0,rot=[None,None,None],rotX=0,rotY=0,rotZ=0,width=0,height=0,depth=100,rad=0,rad2=0,color=colDefault,alpha=1,OOwidth=0,OOheight=0,holes=True,negative=True, name="",m=""):
    returnValue = cube([10,10,10])

    if size[0] != None:
        width=size[0]
        height=size[1]
        depth=size[2]

    #print("    OPSCInsert item:" + str(item) + " at:[" + str(x) + "," + str(y) + "," + str(z) + "] size: [" + str(width) + "," + str(height) + "," + str(depth) + "]")

    if(item=="cube"):
        returnValue =  translate([0,0,-depth/2])(cube([width,height,depth],center=True).set_modifier(m))
    elif(item=="cylinder"):        
        returnValue = translate([0,0,-depth/2])(cylinder(r=rad,h=depth,center=True).set_modifier(m))
    elif(item=="sphere"):        
        returnValue = translate([0,0,-rad])(sphere(r=rad).set_modifier(m))
    elif(item=="plane"):
        if depth == 100:
            returnValue = insert("cube",size=[1000,1000,0.1],color=color).set_modifier(m)            
        else:
            returnValue = insert("cube",size=[1000,1000,depth],color=color).set_modifier(m)                        
    elif(item=="cubeRounded"):
        if(rad == 0):
                            rad = 5
        returnValue =  translate([0,0,-depth])(
                        linear_extrude(height=depth)(                        
                            offset(r=rad)(
                                square((width-rad*2+.01,height-rad*2+.01),center=True).set_modifier(m)
                                )
                            )
        )
    ######  Countersunk
    elif(item == "countersunkM1" or item == "csM1" ):
        returnValue = OSPCgetCountersunk(rad=1,m=m)
    elif(item == "countersunkM2" or item == "csM2" ):
        returnValue = OSPCgetCountersunk(rad=2,m=m)
    elif(item == "countersunkM3" or item == "csM3" ):
        returnValue = OSPCgetCountersunk(rad=3,m=m)
    elif(item == "countersunkM4" or item == "csM4" ):
        returnValue = OSPCgetCountersunk(rad=4,m=m)
    elif(item == "countersunkM5" or item == "csM5" ):
        returnValue = OSPCgetCountersunk(rad=5,m=m)
    elif(item == "countersunkM6" or item == "csM6" ):
        returnValue = OSPCgetCountersunk(rad=6,m=m)
    elif(item == "countersunk" or item == "cs"):
        returnValue = OSPCgetCountersunk(rad=rad,m=m)


    ######  Holes    
    elif(item == "holeM1"):
        returnValue = OSPCgetHole(rad=1,m=m)
    elif(item == "holeM2"):
        returnValue = OSPCgetHole(rad=2,m=m)
    elif(item == "holeM3"):
        returnValue = OSPCgetHole(rad=3,m=m)
    elif(item == "holeM4"):
        returnValue = OSPCgetHole(rad=4,m=m)
    elif(item == "holeM5"):
        returnValue = OSPCgetHole(rad=5,m=m)
    elif(item == "holeM6"):
        returnValue = OSPCgetHole(rad=6,m=m)
    elif(item == "holeM7"):
        returnValue = OSPCgetHole(rad=7,m=m)
    elif(item == "holeM8"):
        returnValue = OSPCgetHole(rad=8,m=m)
    elif(item == "hole"):
        returnValue = OSPCgetHole(rad=rad,m=m)

    ######  Nuts
    elif(item == "nutM1"):
        returnValue = OSPCgetNut(rad=1,depth=depth,m=m)
    elif(item == "nutM2"):
        returnValue = OSPCgetNut(rad=2,depth=depth,m=m)
    elif(item == "nutM3"):
        returnValue = OSPCgetNut(rad=3,depth=depth,m=m)
    elif(item == "nutM4"):
        returnValue = OSPCgetNut(rad=4,depth=depth,m=m)
    elif(item == "nutM5"):
        returnValue = OSPCgetNut(rad=5,depth=depth,m=m)
    elif(item == "nutM6"):
        returnValue = OSPCgetNut(rad=6,depth=depth,m=m)
    elif(item == "nut"):
        returnValue = OSPCgetNut(rad=rad,depth=depth,m=m)
    return returnValue

                

def OSPCgetHole(rad,m=""):
    return translate([0,0,-250])(cylinder(r=holeM[rad],h=500).set_modifier(m))

def OSPCgetNut(rad,depth,m=""):
    depth = nutM[rad][NUTDEPTH] if depth==100 else depth
    returnValue = OPSChexagon(nutM[rad][NUTWIDTH],depth=depth,m=m)
    return returnValue

def OSPCgetCountersunk(rad,m=""):
    depth=countersunkM[rad][DEPTH]
    returnValue = translate([0,0,-depth])(cylinder(h=depth,r2=countersunkM[rad][WIDTH],r1=holeM[rad])).set_modifier(m)
    return returnValue

def OPSChexagon(width,depth,m=""):
    angles = []
    for a in range(0,6):
        angles.append((a*360/6)+30)
    points = []
    for angle in angles:
        x = math.cos((math.pi/180)*angle)*(width/2)
        y = math.sin((math.pi/180)*angle)*(width/2)
        points.append([x,y])

        rv = polygon(points)
        rv = linear_extrude(height=depth)(rv)
        rv = translate([0,0,-depth])(rv)
        rv = rv.set_modifier(m)

    return rv

def OPSChexagonOld(width,depth,m=""):
    cutter = item()
    wid=width*2
    cutter.addPos(insert("cube",pos=[wid/2+width/2,0,0],size=[wid,wid,depth]))
    cutter.addPos(insert("cube",pos=[-wid/2-width/2,0,0],size=[wid,wid,depth]))

    cut = cutter.getPart()
    #print(depth)
    returnValue = difference()(
        translate([0,0,-depth/2])(cube([wid,wid,depth],center=True)),
        cut,
        rotate([0,0,60])(cut),
        rotate([0,0,-60])(cut)
    ).set_modifier(m)

    return returnValue

class item:

    def __init__(self):
        self.posItems=list()
        self.negItems=list()

    def isEmpty(self):        
        testString = scad_render(self.getPart())
        #print("test String length: " + str(len(testString)))
        returnValue = False
        if len(testString) == 270:            
            returnValue = True
        return returnValue

    def addPos(self,part):
        self.posItems.append(part)
    def addNeg(self,part):
        self.negItems.append(part)

    def getPart(self):
        returnValue = difference()(
            union()(self.posItems),
            union()(self.negItems)
        )
        return returnValue

    def getLaser(self,start=0,layers=1,thickness=-3,tileDif=200):
        rv= []

        for x in range(layers):
            rv.append(translate([0,x*tileDif,0])(
                    projection()(
                        intersection()(
                            insert("plane",z=start+x*thickness),
                            self.getPart()
                        )
                    )
            )
            )
        return union()(rv)

    def getSplit(self,start=0,depth=6,tileDif=200):
        rv= []

        rv.append(translate([0,0,0])(
            intersection()(
                insert("cube",size=[100,100,depth],z=start),
                self.getPart()
            )
        )
        )

        rv.append(translate([0,0,depth])(rotate([180,0,0])(translate([0,tileDif,depth])(
            intersection()(
                insert("cube",size=[100,100,depth],z=start-depth),
                self.getPart()
            )
        )
        )
        )
        )        
        return union()(rv)


 
 
************************************************/
